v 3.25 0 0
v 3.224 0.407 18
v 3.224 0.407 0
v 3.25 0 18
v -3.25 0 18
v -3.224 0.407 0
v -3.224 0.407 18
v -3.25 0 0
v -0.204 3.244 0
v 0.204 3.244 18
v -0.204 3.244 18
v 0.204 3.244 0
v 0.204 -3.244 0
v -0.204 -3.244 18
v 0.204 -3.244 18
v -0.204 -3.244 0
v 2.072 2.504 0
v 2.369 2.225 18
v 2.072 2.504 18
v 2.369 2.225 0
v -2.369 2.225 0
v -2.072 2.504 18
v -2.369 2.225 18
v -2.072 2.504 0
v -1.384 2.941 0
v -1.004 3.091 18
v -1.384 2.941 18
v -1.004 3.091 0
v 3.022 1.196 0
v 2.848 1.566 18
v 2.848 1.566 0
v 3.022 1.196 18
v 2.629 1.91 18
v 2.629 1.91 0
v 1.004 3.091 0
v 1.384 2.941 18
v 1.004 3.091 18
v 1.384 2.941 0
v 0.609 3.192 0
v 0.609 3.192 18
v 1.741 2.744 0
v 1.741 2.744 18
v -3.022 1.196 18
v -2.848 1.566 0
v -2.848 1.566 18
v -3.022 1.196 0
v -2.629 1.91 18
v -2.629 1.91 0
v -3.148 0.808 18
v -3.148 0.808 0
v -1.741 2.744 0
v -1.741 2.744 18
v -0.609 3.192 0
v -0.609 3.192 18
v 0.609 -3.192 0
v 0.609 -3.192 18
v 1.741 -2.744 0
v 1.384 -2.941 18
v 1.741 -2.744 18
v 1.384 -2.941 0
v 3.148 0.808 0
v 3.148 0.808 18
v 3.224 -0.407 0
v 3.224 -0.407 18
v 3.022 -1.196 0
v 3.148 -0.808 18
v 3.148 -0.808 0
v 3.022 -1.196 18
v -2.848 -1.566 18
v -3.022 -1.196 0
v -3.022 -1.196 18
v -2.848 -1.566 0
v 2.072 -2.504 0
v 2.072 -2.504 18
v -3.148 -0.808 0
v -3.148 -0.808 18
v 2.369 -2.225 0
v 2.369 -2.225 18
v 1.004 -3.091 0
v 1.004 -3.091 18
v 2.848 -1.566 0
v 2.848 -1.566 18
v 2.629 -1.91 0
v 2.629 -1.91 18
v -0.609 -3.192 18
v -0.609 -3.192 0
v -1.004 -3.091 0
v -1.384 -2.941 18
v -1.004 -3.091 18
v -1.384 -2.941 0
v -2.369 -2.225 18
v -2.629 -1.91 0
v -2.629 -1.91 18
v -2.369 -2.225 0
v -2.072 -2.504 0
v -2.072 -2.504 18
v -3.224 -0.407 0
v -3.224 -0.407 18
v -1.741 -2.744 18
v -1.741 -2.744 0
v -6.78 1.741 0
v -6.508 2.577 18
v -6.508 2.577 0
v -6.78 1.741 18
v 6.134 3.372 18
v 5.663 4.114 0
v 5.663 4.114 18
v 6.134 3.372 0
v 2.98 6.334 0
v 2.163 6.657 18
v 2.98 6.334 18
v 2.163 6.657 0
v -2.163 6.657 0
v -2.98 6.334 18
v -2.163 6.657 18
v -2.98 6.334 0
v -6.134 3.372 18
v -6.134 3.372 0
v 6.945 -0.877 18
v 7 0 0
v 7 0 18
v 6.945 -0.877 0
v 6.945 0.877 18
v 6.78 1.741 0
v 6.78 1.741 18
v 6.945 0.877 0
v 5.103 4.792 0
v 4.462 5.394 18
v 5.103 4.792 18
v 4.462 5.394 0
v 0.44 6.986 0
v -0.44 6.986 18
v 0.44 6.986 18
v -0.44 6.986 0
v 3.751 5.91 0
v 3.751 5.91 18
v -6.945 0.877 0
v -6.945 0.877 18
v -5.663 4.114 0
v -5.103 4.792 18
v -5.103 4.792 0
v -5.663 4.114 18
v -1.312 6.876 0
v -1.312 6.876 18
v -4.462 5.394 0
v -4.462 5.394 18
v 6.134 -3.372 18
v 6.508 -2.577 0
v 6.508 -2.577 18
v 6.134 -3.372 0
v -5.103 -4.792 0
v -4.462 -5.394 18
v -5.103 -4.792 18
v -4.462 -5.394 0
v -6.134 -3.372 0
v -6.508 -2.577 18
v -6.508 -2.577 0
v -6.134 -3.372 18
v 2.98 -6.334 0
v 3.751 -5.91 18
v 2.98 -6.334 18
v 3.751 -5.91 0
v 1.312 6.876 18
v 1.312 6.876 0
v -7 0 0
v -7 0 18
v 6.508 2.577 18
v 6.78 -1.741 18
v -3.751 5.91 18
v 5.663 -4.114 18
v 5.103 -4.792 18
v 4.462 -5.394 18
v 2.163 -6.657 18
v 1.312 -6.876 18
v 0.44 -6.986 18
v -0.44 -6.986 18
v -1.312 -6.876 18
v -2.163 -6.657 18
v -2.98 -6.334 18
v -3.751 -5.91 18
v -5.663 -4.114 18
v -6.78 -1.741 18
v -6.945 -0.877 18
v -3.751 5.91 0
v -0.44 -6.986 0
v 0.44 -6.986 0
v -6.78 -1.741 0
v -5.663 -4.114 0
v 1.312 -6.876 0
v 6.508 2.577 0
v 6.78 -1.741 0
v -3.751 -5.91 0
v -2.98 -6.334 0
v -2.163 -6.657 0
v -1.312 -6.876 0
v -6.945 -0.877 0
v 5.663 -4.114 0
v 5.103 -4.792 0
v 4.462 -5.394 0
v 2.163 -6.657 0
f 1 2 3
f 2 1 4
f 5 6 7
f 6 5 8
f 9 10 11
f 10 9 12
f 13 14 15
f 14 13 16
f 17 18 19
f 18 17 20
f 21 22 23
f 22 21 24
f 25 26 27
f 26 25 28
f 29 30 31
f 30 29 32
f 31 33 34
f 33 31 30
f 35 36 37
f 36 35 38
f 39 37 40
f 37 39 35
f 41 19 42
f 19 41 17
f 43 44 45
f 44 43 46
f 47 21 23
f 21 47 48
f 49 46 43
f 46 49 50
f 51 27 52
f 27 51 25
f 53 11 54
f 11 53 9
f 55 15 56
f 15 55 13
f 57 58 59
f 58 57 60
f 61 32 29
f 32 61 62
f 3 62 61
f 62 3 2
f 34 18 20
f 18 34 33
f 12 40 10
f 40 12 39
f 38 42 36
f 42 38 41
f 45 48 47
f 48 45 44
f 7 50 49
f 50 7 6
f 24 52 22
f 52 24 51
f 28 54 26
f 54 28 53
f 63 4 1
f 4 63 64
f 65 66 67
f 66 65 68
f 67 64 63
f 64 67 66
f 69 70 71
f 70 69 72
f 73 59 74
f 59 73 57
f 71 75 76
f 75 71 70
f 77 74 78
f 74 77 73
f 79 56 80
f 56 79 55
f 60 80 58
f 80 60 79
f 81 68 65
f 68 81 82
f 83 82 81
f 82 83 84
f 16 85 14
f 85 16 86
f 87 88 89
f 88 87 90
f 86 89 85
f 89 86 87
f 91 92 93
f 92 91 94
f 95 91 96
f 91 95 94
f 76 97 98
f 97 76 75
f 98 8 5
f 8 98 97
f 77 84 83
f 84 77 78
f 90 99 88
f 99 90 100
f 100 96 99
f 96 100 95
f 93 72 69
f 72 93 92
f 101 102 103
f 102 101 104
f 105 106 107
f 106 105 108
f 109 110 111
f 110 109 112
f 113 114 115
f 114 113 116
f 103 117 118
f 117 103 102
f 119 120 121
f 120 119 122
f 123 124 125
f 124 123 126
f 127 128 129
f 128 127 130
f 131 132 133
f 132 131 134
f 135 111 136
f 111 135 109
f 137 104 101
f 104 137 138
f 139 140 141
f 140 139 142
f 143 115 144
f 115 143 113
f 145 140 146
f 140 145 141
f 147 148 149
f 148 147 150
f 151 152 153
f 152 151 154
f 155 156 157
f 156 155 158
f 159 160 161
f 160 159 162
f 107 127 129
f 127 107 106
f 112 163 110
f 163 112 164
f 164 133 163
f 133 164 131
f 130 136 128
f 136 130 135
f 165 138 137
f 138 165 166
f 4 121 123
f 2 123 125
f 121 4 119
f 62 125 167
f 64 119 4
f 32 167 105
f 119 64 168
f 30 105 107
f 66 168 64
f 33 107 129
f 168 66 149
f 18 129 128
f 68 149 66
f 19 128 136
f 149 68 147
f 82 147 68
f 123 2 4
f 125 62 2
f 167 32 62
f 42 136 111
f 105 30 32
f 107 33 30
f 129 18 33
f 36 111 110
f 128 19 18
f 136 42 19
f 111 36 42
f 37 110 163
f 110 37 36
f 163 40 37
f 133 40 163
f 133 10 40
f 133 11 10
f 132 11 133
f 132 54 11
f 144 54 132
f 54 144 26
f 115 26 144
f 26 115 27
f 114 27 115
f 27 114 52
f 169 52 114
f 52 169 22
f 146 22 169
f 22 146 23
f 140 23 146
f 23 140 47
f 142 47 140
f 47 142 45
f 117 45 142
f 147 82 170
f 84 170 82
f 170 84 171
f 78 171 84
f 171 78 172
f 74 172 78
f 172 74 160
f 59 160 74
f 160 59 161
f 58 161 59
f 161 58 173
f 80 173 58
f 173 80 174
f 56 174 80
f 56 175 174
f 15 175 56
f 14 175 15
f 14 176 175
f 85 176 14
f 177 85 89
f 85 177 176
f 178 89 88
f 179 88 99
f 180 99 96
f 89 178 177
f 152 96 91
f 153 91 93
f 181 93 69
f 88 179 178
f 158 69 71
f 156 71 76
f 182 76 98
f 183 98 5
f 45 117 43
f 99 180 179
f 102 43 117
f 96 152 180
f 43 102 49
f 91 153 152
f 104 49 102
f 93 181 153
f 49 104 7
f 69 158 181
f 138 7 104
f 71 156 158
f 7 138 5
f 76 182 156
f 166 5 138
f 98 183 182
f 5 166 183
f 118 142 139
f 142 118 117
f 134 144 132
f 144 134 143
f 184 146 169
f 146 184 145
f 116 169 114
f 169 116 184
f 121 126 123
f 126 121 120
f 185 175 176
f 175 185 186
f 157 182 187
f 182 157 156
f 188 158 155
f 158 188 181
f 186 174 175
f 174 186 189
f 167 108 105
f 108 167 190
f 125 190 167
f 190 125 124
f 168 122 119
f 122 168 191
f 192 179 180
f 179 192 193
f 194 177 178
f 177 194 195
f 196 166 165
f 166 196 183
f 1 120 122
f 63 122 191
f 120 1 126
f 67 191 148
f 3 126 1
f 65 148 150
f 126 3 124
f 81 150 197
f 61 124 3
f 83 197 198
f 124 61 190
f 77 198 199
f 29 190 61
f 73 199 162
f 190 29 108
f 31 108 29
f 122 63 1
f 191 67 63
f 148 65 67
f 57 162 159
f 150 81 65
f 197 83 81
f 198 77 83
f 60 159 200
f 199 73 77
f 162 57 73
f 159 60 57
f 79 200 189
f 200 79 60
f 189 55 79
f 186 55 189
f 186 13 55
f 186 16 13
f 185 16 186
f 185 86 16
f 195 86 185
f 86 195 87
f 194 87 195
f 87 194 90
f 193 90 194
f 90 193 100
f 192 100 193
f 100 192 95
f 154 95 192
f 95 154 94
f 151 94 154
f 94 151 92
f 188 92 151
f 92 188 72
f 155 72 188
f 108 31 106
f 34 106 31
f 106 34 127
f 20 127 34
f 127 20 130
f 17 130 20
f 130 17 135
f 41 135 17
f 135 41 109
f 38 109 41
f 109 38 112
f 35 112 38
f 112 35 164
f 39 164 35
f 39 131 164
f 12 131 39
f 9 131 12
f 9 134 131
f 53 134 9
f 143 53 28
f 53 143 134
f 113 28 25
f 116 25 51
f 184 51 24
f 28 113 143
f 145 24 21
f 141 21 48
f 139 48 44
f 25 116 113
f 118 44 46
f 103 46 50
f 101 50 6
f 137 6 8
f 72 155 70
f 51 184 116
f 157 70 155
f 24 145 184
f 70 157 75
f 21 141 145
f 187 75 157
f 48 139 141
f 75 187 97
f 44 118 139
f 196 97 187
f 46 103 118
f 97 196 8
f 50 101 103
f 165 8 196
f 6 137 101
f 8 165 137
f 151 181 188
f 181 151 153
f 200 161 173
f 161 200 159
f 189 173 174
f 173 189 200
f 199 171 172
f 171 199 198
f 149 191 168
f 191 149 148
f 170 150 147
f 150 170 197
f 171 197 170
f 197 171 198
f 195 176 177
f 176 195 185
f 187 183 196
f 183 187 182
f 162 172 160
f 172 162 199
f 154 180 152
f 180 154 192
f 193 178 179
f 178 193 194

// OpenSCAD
$fn = 50;


difference() {
	union() {
		cylinder(h = 18, r = 7.0000000000);
	}
	union() {
		translate(v = [0.0000000000, 0.0000000000, -100.0000000000]) {
			cylinder(h = 200, r = 3.2500000000);
		}
		translate(v = [0.0000000000, 0.0000000000, -100.0000000000]) {
			cylinder(h = 200, r = 3.2500000000);
		}
		translate(v = [0.0000000000, 0.0000000000, -100.0000000000]) {
			cylinder(h = 200, r = 3.2500000000);
		}
		translate(v = [0.0000000000, 0.0000000000, -100.0000000000]) {
			cylinder(h = 200, r = 3.2500000000);
		}
	}
}
